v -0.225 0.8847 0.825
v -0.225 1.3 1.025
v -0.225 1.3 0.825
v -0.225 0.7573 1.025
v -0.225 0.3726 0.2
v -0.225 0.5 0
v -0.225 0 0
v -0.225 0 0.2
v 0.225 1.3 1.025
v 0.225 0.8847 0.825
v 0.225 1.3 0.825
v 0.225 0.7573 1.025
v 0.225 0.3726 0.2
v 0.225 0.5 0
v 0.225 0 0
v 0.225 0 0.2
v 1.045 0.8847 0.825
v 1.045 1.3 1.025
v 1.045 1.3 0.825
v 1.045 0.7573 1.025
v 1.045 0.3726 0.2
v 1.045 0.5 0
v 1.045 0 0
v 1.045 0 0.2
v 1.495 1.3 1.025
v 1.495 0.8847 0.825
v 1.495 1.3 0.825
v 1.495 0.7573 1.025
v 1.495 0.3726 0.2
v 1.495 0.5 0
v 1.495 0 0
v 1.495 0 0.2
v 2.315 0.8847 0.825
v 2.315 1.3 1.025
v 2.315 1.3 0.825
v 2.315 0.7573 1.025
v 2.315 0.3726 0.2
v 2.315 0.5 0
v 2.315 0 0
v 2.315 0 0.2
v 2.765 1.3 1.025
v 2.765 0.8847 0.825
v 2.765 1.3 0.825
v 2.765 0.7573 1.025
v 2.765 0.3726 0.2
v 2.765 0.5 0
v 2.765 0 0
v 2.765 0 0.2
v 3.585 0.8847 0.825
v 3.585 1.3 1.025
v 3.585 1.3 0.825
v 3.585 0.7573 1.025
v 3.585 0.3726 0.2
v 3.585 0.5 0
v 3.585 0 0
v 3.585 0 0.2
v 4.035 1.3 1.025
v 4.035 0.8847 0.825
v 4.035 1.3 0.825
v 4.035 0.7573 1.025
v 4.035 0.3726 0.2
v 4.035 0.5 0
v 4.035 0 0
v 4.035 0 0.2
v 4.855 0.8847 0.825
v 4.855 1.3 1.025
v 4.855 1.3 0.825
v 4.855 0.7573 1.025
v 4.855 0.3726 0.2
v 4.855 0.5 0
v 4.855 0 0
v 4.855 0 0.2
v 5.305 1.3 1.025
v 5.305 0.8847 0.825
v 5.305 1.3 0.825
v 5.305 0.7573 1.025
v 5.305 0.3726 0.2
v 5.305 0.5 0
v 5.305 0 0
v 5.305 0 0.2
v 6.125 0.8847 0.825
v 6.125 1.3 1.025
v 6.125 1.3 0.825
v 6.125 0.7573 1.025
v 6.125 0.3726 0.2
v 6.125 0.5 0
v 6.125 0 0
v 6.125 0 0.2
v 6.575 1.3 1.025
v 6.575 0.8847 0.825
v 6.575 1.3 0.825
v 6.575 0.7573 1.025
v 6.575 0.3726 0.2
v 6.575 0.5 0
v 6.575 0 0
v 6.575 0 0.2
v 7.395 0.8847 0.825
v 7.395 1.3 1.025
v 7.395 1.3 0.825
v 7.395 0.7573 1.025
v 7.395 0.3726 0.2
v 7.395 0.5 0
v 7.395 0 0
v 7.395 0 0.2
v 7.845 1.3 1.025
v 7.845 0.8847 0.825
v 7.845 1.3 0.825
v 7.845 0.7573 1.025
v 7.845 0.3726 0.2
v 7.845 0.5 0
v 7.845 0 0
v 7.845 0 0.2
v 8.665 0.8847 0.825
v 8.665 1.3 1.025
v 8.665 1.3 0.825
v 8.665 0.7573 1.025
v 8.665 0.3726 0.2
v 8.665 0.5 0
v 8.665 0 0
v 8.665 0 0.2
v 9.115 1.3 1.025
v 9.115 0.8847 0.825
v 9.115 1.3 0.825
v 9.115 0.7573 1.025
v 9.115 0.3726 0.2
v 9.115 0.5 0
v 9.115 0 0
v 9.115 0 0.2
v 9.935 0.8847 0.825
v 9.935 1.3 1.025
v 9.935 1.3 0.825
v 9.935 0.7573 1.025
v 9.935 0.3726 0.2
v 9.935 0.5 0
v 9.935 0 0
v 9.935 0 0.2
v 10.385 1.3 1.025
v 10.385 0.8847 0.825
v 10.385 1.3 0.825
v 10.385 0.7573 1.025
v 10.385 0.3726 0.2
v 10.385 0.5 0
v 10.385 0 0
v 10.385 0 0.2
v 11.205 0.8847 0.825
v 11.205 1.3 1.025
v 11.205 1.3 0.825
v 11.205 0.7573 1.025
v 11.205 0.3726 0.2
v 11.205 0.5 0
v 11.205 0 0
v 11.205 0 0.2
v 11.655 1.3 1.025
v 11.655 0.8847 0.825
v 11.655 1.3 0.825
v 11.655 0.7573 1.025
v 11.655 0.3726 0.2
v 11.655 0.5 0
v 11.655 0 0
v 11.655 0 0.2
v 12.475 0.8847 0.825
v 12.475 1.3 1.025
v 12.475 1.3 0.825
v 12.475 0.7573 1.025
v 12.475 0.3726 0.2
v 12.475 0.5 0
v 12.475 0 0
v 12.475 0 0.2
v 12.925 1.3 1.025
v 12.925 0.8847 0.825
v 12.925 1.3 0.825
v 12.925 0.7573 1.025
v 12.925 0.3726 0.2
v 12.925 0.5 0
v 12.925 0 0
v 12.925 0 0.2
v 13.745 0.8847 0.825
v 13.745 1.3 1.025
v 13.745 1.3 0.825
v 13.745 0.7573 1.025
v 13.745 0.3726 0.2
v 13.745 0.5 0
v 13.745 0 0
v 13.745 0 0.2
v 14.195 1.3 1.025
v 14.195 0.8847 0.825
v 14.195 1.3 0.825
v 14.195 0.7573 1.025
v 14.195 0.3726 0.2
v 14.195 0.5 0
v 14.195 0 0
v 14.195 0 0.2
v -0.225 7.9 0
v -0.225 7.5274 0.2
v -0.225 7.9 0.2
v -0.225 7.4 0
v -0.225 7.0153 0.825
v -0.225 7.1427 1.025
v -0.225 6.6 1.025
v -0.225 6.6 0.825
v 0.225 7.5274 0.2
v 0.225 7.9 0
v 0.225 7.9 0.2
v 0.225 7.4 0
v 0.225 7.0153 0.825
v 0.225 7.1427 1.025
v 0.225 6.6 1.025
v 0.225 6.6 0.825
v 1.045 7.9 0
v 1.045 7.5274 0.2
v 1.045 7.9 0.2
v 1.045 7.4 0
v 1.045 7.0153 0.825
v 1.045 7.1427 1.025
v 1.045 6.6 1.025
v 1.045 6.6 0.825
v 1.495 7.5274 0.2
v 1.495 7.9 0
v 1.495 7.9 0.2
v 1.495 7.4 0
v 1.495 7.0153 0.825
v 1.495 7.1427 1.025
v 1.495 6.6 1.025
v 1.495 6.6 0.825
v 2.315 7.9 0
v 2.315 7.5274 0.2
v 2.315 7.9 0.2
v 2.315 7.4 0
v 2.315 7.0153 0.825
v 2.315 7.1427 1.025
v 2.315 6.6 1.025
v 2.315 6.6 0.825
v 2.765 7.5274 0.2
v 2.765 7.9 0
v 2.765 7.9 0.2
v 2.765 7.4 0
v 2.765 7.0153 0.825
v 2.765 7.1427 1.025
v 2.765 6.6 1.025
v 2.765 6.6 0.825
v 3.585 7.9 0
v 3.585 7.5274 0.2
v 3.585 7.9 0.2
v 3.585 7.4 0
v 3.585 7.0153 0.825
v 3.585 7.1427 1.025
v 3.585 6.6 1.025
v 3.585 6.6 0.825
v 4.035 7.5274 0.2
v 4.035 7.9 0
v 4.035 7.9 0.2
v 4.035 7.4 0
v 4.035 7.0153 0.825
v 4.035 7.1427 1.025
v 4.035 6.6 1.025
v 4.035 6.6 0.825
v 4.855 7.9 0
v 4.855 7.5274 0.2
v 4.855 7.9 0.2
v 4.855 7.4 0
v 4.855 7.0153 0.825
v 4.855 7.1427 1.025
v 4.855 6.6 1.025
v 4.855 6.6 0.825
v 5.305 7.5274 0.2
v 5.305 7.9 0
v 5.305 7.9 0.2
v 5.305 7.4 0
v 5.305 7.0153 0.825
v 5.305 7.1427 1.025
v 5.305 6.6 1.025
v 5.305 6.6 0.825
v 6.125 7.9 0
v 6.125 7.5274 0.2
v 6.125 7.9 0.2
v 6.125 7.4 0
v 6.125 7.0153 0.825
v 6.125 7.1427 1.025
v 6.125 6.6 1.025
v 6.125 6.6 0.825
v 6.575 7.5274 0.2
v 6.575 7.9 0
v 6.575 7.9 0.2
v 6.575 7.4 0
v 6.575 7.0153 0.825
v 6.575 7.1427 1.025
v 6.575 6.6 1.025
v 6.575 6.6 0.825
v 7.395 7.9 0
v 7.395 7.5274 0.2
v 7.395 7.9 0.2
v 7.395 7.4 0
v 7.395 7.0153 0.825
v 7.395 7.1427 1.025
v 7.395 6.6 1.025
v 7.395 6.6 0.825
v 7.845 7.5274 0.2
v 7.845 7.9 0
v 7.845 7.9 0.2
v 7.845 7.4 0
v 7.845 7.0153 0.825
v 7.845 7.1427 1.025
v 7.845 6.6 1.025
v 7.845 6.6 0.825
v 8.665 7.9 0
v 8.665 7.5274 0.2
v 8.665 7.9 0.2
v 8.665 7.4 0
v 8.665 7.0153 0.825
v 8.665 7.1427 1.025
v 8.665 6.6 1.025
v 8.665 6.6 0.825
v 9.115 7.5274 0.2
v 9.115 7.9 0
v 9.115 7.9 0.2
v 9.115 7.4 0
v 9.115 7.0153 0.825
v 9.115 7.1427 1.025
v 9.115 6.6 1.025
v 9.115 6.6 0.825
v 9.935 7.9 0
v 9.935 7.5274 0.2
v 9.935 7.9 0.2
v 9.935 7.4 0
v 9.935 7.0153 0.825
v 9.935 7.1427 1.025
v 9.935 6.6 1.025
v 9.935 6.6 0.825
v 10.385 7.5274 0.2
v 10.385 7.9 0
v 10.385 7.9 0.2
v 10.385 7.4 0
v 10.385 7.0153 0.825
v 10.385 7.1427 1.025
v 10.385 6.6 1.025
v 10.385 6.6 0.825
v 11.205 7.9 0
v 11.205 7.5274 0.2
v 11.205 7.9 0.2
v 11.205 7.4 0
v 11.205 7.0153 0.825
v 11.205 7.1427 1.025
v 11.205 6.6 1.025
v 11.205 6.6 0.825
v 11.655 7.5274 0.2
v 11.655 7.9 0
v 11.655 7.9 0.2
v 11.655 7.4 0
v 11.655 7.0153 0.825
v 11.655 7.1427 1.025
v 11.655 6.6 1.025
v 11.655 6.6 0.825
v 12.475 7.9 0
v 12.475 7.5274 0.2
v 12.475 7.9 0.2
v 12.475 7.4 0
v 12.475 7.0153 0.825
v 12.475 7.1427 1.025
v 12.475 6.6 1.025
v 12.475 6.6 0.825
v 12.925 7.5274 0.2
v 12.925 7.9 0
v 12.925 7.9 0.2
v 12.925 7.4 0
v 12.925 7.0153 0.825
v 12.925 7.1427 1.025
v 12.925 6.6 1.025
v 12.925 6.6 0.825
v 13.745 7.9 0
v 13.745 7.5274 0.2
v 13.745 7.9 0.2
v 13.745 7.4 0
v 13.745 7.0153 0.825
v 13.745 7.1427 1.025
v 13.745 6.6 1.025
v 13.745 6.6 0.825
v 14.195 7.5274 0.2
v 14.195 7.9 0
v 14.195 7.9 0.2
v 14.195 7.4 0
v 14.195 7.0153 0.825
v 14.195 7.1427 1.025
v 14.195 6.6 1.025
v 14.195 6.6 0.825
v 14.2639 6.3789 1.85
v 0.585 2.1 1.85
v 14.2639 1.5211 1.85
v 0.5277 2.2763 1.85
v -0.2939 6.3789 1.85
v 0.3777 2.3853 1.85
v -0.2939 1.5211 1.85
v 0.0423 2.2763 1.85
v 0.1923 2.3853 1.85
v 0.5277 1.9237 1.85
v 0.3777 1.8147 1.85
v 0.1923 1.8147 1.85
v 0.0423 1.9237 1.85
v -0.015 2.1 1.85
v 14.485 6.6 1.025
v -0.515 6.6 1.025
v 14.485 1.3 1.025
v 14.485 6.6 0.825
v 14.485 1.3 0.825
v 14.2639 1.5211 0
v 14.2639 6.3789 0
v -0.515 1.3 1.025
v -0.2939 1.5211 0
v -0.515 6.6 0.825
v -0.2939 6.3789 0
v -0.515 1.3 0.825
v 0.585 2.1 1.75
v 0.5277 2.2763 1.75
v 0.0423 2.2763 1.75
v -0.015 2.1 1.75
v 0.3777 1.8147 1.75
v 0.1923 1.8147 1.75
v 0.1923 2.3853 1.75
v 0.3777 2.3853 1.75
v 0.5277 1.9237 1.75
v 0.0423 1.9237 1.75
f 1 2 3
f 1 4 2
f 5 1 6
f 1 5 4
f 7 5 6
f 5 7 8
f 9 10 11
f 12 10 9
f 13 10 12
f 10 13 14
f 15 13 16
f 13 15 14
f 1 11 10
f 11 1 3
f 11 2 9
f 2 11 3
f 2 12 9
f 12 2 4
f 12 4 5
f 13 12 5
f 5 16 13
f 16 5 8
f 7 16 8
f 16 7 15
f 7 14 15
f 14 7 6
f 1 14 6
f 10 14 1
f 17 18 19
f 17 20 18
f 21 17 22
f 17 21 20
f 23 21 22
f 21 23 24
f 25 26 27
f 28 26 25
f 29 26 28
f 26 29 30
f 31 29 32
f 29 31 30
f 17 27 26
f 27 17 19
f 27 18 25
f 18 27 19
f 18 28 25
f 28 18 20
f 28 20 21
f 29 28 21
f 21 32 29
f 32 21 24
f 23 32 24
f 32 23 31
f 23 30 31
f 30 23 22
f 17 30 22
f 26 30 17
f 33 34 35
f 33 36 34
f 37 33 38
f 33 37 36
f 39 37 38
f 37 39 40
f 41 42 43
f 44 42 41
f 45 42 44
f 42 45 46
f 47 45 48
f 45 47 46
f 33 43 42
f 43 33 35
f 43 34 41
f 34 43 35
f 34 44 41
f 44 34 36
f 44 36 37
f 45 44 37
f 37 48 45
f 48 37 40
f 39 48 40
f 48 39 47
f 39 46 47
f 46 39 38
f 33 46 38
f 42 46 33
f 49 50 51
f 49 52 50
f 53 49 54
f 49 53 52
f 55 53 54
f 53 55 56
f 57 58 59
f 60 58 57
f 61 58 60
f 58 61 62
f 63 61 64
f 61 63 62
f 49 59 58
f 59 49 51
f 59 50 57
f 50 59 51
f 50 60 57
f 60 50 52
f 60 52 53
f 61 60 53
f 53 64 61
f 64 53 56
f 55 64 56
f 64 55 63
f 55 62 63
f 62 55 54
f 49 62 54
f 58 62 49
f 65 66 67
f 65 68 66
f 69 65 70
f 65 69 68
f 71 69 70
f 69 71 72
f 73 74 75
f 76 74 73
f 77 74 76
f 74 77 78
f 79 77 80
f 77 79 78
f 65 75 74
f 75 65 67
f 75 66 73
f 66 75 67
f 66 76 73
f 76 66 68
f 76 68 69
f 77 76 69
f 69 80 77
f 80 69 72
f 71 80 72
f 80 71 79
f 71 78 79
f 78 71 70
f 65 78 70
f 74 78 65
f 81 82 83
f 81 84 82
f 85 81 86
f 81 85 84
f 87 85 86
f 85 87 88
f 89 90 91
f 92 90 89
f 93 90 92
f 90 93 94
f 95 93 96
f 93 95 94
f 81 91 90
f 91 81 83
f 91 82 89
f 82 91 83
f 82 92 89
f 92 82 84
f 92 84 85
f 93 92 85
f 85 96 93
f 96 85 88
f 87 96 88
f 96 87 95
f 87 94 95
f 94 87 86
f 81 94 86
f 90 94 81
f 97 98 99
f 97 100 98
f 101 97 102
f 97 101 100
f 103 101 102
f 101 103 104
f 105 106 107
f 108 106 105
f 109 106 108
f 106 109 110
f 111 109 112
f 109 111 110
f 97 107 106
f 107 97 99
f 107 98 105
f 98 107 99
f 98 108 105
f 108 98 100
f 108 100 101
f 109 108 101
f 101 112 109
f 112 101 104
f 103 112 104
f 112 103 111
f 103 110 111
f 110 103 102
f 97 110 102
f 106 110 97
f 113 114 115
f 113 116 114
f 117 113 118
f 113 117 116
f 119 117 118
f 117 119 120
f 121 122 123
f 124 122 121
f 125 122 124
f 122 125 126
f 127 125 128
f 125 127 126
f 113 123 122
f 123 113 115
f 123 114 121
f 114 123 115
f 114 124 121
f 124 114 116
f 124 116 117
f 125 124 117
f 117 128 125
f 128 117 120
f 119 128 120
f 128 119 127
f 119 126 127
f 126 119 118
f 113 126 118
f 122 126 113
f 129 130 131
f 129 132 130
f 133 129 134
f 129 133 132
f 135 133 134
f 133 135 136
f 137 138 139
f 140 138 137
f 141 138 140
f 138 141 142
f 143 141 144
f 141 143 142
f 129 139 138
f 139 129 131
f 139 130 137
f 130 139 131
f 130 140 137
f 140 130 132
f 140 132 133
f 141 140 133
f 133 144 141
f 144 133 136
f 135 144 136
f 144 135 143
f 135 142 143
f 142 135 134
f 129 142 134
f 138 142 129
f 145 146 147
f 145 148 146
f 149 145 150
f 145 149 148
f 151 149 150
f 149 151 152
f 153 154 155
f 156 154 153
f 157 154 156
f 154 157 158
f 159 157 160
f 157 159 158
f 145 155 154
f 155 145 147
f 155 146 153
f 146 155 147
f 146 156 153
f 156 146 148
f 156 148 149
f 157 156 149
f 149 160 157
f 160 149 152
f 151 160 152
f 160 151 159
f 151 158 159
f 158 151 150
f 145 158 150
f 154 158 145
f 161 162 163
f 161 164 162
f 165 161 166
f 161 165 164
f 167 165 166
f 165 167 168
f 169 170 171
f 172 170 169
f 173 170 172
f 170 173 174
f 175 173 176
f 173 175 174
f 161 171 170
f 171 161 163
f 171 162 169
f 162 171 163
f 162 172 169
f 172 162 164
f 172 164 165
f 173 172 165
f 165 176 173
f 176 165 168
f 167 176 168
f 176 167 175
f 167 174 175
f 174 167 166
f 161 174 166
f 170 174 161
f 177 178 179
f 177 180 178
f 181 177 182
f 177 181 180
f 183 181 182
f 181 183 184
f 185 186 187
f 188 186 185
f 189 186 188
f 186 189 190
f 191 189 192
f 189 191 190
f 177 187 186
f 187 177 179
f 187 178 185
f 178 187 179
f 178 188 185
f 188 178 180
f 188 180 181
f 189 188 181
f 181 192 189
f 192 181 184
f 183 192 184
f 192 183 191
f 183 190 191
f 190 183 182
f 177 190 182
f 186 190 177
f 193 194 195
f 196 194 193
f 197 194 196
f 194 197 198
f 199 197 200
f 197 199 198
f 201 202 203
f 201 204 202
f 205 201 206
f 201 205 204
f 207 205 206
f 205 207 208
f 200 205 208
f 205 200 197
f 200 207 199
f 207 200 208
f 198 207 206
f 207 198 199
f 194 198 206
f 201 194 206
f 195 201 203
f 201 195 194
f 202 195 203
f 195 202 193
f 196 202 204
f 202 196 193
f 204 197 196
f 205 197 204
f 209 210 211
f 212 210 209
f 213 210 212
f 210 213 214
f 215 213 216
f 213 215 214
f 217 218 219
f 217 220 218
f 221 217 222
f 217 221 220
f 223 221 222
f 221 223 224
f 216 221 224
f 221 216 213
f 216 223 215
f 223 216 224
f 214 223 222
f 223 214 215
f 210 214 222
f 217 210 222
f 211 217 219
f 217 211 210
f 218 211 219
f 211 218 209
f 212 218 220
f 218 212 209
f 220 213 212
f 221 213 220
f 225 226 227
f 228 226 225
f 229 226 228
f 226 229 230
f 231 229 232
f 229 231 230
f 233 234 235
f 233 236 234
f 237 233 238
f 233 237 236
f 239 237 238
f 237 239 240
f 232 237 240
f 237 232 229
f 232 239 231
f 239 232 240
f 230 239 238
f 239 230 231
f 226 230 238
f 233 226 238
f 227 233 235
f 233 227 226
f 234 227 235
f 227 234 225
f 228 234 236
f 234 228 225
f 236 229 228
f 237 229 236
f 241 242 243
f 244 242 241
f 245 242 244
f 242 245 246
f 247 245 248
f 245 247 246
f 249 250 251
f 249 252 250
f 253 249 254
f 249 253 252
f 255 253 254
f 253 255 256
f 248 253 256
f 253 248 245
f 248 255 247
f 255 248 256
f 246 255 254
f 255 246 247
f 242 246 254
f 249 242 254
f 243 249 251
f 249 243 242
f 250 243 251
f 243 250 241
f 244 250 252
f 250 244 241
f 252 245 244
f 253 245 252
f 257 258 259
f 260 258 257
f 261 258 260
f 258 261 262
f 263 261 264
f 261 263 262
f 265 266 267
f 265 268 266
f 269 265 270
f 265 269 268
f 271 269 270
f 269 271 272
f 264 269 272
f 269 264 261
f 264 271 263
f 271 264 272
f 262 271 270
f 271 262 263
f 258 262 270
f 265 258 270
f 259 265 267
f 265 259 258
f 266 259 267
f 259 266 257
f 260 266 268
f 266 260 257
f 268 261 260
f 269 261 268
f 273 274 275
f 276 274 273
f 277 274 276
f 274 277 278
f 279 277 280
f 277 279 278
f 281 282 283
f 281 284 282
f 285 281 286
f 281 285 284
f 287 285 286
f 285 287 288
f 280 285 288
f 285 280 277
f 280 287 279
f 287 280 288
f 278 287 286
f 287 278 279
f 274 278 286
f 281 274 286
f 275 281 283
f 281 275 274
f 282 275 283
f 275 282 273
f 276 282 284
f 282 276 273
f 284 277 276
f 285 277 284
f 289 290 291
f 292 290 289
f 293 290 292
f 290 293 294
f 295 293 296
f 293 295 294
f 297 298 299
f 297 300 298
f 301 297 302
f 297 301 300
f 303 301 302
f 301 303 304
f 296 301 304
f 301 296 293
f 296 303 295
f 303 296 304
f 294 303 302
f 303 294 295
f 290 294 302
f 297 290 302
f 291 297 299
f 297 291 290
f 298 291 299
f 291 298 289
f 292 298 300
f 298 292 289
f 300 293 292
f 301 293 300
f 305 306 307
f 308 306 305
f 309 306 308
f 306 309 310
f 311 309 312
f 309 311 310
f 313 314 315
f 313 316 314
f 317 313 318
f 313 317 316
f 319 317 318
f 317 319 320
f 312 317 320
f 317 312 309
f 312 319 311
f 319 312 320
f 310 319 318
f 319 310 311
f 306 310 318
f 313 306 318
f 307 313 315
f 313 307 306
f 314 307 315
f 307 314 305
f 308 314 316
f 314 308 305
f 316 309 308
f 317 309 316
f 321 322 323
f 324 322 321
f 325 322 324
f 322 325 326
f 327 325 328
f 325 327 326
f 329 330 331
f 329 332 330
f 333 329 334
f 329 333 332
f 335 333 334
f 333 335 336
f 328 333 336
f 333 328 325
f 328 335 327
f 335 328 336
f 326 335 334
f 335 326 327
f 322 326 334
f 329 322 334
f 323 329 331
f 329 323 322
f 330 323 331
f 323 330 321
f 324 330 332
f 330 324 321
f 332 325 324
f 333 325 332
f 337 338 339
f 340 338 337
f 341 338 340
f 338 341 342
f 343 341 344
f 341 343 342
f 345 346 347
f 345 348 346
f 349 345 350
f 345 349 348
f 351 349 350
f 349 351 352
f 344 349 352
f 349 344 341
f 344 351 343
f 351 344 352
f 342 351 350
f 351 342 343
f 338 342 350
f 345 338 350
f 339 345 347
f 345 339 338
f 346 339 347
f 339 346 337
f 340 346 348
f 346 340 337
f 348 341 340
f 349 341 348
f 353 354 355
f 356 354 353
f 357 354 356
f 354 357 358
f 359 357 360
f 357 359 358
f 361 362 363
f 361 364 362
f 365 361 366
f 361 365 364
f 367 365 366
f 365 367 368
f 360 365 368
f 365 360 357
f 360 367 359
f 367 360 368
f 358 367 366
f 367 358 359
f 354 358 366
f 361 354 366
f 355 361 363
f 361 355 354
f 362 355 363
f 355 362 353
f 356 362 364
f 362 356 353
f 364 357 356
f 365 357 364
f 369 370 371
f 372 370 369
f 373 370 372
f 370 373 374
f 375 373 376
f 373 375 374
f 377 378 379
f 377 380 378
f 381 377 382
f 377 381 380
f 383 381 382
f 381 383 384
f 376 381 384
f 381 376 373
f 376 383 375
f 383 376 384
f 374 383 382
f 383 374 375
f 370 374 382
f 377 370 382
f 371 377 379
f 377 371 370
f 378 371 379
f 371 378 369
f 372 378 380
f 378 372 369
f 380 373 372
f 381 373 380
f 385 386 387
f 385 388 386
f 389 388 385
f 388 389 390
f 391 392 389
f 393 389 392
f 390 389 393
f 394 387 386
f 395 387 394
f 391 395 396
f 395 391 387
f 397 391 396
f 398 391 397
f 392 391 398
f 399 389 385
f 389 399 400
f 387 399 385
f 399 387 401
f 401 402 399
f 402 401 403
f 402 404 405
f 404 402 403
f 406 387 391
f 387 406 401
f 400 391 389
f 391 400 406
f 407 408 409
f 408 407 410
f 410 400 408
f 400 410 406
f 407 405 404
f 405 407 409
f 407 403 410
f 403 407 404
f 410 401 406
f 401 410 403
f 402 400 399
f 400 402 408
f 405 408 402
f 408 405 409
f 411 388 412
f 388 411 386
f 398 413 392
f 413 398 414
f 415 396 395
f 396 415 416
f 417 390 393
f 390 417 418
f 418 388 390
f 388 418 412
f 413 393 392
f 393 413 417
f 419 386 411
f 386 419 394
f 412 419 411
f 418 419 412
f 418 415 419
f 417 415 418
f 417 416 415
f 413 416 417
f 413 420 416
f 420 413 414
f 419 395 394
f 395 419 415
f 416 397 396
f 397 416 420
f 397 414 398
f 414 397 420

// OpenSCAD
// file: pin.scad
// This module outputs bended pin
// _L - whole pin length
// _l - length of bottom part
// _H - whole pin height
// _th - pin thickness
// _a - bending angle
// _W - pin width
module pin(_L,_l,_H,_th,_a,_W)
{
	// Internal variables
    _d1 = _th*sin(_a) / (1-cos(_a));
    _d2 = (_th-_H)*cos(_a) / sin(_a);

	rotate([90,0,90])
    // Extrude the following polygon
	linear_extrude(height = _W, center = true, convexity = 10, twist = 0)
        polygon([[0,0],
                 [_l,0],
				 [_l+_d2,_H-_th],
				 [_L,_H-_th],
				 [_L,_H],
				 [_l+_d2-_d1,_H],
				 [_l-_d1,_th],
				 [0,_th]]);
}

// Example of usage
pin(2,1,1,0.2,115,0.5);
// file: case.scad
// This module draws case
// _L - case length
// _W - case width
// _H - case height
// _ph - top point (vertical) of pin connection area
// _pt - pin thickness
// _atl - case angle top left,
// _atr - case angle top right,
// _atu - case angle top up
// _atd - case angle top down
// _abl - case angle bottom left,
// _abr - case angle bottom right,
// _abu - case angle bottom up
// _abd - case angle bottom down
// _n_x - notch X position relative to case corner
// _n_y - notch Y position relative to case corner
// _n_d - notch diameter
// _n_z - notch_depth
module case(_L,_W,_H,_ph,_pt,_atl,_atr,_atu,_atd,_abl,_abr,_abu,_abd, _n_x, _n_y, _n_d, _n_z)
{
    _tth = _H - _ph;
    _bth = _ph - _pt;
    _dtl = _tth * cos(_atl) / sin(_atl);
    _dtr = _tth * cos(_atr) / sin(_atr);
    _dtu = _tth * cos(_atu) / sin(_atu);
    _dtd = _tth * cos(_atd) / sin(_atd);
    _dbl = _bth * cos(_abl) / sin(_abl);
    _dbr = _bth * cos(_abr) / sin(_abr);
    _dbu = _bth * cos(_abu) / sin(_abu);
    _dbd = _bth * cos(_abd) / sin(_abd);
	// Make case with notch - difference between case and small cylinder
    difference()
    {
        // This is our case
        polyhedron(
            points = [
                // top points
                [ 0 + _dtl, 0 + _dtd, _H],
                [_L - _dtr, 0 + _dtd, _H],
                [_L - _dtr,_W - _dtu, _H],
                [ 0 + _dtl,_W - _dtu, _H],
                // middle top points
                [ 0, 0,_ph],
                [_L, 0,_ph],
                [_L,_W,_ph],
                [ 0,_W,_ph],
                // middle bottom points
                [ 0, 0,_ph - _pt],
                [_L, 0,_ph - _pt],
                [_L,_W,_ph - _pt],
                [ 0,_W,_ph - _pt],
                // bottom points
                [ 0 + _dbl, 0 + _dbd, 0],
                [_L - _dbr, 0 + _dbd, 0],
                [_L - _dbr,_W - _dbu, 0],
                [ 0 + _dbl,_W - _dbu, 0]
            ],
            faces = [
                // Top
                [ 0, 3, 2, 1],
                // Top sides
                [ 4, 0, 1, 5],
                [ 5, 1, 2, 6],
                [ 6, 2, 3, 7],
                [ 7, 3, 0, 4],
                // Middle sides
                [ 4, 5, 9, 8],
                [ 5, 6,10, 9],
                [ 6, 7,11,10],
                [ 7, 4, 8,11],
                // Bottom sides
                [12, 8, 9,13],
                [13, 9,10,14],
                [14,10,11,15],
                [15,11, 8,12],
                // Bottom
                [12,13,14,15]
            ]
        );
        // This is notch
        translate([_n_x,_n_y,_H])
            cylinder(r = _n_d/2, h = _n_z*2, center = true, $fn=10);
    }
}

// Example of usage
// case(10,5,1.5,0.7,0.3,80,80,80,80,45,45,45,45, 1,1,1);
// main file
// cribbed from http://www.sl-alex.com.ua/en/page/3d-models-for-kicad-part1-openscad

use <case.scad>
use <pin.scad>

// Case dimensions
case_x=15;        // Case X dimension
case_y=5.3;        // Case Y dimension
case_z=1.85;        // Case Z dimension
case_a = 75;

notch_d=0.6;
notch_depth=0.1;
notch_x=0.8;
notch_y=0.8;

// Pin arrays parameters
side1_pins = 12;
side2_pins = 0;
side3_pins = 12;
side4_pins = 0;
pin_distance =1.27;    // Pin step

// Pin parameters
pin_th = 0.2; // Thickness
pin_W = 0.45;  // Pin width
pin_L = 1.3;  // Total Length
pin_H = case_z/2+pin_th/2; // Pin height (from bottom to top)
pin_l = 0.5;  // Length of the bottom part
pin_a = 115;  // Bending angle


// Array of pins
// _cnt - number of pins
// _distance - distance between pin centres
module pins_array(_cnt, _distance)
{
	if (_cnt>0)
	{
		for (_i = [0:_cnt-1])
		{
			translate([_distance*_i,0,0])
				pin(pin_L,pin_l,pin_H,pin_th,pin_a,pin_W);
		}
	}
}

// Complete model
union()
{
	// Top pins
	translate([(side1_pins-side3_pins)*pin_distance/2,case_y+pin_L*2,0])
		mirror([0,1,0])
			pins_array(side3_pins, pin_distance);

	// Bottom pins
	pins_array(side1_pins, pin_distance);

	// Left pins
	translate([-(case_x-(side1_pins-1)*pin_distance)/2 - pin_L,pin_L+case_y/2-(side4_pins-1)*pin_distance/2,0])
		mirror([1,0,0])
			rotate([0,0,90])
				pins_array(side4_pins, pin_distance);

	// Right pins
	translate([-(case_x-(side1_pins-1)*pin_distance)/2-pin_L+case_x+2*pin_L,pin_L+case_y/2-(side2_pins-1)*pin_distance/2,0])
		mirror([0,1,0])
			mirror([0,1,0])
				rotate([0,0,90])
					pins_array(side2_pins, pin_distance);

	// Case
	translate([-(case_x-(side1_pins-1)*pin_distance)/2,pin_L,0])
		case(case_x,case_y,case_z,pin_H,pin_th,case_a,case_a,case_a,case_a,case_a,case_a,case_a,case_a, notch_x,notch_y,notch_d,notch_depth);
}
